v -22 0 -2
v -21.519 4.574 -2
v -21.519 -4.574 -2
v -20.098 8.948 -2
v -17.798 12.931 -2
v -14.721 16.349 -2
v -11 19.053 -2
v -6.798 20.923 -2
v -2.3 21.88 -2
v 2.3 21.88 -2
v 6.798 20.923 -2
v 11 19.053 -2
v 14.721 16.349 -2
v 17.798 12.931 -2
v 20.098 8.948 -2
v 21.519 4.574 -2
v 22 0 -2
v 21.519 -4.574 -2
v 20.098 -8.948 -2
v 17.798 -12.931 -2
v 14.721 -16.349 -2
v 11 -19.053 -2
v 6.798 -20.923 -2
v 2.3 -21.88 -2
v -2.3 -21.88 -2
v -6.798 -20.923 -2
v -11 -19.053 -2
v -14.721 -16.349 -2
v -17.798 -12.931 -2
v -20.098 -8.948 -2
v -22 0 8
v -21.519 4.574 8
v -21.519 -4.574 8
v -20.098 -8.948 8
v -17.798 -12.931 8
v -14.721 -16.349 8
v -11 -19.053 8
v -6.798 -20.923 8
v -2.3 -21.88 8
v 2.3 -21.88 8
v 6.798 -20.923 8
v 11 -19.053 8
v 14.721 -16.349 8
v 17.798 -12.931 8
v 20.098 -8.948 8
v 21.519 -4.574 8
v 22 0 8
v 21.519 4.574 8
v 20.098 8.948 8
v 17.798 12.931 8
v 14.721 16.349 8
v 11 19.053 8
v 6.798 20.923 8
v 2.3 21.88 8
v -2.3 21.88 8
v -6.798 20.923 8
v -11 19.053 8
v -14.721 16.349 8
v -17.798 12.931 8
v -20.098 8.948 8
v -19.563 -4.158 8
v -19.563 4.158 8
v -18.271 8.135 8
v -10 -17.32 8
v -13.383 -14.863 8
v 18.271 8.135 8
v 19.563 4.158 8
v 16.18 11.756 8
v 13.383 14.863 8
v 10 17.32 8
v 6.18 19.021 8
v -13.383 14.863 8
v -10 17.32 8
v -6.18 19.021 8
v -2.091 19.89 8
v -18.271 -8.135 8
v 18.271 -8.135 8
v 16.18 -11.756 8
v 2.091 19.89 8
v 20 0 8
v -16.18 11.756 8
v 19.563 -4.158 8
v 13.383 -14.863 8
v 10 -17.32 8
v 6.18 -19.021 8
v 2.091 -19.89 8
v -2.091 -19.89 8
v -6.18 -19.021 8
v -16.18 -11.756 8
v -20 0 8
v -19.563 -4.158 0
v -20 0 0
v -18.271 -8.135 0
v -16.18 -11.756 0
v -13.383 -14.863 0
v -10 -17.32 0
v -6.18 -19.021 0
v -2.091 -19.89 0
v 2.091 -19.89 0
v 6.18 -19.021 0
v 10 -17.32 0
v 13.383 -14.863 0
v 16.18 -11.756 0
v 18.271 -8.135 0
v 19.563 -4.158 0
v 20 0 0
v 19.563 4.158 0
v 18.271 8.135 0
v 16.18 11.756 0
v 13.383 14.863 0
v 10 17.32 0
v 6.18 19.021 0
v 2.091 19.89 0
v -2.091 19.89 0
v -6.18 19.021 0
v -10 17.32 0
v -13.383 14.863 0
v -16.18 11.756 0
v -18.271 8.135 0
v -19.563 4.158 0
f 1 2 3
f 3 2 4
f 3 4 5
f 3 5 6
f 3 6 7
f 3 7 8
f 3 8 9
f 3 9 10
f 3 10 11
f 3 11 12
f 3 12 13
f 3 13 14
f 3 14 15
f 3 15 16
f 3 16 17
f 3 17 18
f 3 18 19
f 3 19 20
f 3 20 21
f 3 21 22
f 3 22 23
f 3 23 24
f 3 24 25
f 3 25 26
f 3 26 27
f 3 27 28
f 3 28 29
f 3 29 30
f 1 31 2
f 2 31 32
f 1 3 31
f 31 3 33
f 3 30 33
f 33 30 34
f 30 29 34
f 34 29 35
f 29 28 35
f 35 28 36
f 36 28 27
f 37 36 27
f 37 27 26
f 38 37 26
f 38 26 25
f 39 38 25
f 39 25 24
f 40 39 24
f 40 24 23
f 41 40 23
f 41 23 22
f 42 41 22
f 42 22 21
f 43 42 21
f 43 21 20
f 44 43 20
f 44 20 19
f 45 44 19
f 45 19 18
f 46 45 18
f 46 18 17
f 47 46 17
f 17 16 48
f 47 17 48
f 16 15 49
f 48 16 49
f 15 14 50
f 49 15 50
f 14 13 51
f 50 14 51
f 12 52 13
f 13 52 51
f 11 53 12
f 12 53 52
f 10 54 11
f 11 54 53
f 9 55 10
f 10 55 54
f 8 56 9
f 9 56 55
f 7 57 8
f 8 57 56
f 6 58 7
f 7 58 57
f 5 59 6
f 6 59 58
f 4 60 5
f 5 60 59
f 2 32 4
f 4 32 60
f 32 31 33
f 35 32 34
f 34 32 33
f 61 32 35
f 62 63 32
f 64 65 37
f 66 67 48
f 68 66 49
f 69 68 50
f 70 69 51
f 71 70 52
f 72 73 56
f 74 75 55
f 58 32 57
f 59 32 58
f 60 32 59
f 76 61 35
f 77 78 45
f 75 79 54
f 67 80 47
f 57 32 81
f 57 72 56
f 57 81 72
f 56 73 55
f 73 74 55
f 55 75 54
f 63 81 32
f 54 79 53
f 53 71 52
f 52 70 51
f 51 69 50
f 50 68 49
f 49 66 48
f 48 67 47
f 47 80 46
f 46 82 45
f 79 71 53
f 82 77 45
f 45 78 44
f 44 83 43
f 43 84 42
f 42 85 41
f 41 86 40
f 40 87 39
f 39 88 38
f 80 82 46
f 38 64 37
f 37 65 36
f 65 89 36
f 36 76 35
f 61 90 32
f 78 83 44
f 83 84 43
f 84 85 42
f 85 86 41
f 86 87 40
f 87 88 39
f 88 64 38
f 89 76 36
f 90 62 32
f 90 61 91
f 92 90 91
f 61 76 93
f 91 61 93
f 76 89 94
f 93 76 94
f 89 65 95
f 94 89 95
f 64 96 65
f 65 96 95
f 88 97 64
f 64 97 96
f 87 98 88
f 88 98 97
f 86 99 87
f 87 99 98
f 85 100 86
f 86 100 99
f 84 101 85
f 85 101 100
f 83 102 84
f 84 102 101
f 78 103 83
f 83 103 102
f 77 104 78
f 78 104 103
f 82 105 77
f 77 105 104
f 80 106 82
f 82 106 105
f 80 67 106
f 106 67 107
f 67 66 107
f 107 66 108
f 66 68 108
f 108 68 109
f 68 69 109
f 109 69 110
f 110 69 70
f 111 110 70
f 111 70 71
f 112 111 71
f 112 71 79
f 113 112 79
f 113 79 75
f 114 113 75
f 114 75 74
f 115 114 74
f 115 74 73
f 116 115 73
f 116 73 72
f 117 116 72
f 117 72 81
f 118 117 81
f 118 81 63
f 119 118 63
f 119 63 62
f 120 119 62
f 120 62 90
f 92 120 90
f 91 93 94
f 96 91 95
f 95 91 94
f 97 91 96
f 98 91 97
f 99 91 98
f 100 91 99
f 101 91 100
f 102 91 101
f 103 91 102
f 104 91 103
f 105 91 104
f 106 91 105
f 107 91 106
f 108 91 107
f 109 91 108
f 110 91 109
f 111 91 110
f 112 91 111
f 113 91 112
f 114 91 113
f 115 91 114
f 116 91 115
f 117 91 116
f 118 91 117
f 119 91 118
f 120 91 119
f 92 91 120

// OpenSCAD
difference() {
  translate([0, 0, -2])  cylinder(10, 22, 22);
  cylinder(12, 20, 20);
}
